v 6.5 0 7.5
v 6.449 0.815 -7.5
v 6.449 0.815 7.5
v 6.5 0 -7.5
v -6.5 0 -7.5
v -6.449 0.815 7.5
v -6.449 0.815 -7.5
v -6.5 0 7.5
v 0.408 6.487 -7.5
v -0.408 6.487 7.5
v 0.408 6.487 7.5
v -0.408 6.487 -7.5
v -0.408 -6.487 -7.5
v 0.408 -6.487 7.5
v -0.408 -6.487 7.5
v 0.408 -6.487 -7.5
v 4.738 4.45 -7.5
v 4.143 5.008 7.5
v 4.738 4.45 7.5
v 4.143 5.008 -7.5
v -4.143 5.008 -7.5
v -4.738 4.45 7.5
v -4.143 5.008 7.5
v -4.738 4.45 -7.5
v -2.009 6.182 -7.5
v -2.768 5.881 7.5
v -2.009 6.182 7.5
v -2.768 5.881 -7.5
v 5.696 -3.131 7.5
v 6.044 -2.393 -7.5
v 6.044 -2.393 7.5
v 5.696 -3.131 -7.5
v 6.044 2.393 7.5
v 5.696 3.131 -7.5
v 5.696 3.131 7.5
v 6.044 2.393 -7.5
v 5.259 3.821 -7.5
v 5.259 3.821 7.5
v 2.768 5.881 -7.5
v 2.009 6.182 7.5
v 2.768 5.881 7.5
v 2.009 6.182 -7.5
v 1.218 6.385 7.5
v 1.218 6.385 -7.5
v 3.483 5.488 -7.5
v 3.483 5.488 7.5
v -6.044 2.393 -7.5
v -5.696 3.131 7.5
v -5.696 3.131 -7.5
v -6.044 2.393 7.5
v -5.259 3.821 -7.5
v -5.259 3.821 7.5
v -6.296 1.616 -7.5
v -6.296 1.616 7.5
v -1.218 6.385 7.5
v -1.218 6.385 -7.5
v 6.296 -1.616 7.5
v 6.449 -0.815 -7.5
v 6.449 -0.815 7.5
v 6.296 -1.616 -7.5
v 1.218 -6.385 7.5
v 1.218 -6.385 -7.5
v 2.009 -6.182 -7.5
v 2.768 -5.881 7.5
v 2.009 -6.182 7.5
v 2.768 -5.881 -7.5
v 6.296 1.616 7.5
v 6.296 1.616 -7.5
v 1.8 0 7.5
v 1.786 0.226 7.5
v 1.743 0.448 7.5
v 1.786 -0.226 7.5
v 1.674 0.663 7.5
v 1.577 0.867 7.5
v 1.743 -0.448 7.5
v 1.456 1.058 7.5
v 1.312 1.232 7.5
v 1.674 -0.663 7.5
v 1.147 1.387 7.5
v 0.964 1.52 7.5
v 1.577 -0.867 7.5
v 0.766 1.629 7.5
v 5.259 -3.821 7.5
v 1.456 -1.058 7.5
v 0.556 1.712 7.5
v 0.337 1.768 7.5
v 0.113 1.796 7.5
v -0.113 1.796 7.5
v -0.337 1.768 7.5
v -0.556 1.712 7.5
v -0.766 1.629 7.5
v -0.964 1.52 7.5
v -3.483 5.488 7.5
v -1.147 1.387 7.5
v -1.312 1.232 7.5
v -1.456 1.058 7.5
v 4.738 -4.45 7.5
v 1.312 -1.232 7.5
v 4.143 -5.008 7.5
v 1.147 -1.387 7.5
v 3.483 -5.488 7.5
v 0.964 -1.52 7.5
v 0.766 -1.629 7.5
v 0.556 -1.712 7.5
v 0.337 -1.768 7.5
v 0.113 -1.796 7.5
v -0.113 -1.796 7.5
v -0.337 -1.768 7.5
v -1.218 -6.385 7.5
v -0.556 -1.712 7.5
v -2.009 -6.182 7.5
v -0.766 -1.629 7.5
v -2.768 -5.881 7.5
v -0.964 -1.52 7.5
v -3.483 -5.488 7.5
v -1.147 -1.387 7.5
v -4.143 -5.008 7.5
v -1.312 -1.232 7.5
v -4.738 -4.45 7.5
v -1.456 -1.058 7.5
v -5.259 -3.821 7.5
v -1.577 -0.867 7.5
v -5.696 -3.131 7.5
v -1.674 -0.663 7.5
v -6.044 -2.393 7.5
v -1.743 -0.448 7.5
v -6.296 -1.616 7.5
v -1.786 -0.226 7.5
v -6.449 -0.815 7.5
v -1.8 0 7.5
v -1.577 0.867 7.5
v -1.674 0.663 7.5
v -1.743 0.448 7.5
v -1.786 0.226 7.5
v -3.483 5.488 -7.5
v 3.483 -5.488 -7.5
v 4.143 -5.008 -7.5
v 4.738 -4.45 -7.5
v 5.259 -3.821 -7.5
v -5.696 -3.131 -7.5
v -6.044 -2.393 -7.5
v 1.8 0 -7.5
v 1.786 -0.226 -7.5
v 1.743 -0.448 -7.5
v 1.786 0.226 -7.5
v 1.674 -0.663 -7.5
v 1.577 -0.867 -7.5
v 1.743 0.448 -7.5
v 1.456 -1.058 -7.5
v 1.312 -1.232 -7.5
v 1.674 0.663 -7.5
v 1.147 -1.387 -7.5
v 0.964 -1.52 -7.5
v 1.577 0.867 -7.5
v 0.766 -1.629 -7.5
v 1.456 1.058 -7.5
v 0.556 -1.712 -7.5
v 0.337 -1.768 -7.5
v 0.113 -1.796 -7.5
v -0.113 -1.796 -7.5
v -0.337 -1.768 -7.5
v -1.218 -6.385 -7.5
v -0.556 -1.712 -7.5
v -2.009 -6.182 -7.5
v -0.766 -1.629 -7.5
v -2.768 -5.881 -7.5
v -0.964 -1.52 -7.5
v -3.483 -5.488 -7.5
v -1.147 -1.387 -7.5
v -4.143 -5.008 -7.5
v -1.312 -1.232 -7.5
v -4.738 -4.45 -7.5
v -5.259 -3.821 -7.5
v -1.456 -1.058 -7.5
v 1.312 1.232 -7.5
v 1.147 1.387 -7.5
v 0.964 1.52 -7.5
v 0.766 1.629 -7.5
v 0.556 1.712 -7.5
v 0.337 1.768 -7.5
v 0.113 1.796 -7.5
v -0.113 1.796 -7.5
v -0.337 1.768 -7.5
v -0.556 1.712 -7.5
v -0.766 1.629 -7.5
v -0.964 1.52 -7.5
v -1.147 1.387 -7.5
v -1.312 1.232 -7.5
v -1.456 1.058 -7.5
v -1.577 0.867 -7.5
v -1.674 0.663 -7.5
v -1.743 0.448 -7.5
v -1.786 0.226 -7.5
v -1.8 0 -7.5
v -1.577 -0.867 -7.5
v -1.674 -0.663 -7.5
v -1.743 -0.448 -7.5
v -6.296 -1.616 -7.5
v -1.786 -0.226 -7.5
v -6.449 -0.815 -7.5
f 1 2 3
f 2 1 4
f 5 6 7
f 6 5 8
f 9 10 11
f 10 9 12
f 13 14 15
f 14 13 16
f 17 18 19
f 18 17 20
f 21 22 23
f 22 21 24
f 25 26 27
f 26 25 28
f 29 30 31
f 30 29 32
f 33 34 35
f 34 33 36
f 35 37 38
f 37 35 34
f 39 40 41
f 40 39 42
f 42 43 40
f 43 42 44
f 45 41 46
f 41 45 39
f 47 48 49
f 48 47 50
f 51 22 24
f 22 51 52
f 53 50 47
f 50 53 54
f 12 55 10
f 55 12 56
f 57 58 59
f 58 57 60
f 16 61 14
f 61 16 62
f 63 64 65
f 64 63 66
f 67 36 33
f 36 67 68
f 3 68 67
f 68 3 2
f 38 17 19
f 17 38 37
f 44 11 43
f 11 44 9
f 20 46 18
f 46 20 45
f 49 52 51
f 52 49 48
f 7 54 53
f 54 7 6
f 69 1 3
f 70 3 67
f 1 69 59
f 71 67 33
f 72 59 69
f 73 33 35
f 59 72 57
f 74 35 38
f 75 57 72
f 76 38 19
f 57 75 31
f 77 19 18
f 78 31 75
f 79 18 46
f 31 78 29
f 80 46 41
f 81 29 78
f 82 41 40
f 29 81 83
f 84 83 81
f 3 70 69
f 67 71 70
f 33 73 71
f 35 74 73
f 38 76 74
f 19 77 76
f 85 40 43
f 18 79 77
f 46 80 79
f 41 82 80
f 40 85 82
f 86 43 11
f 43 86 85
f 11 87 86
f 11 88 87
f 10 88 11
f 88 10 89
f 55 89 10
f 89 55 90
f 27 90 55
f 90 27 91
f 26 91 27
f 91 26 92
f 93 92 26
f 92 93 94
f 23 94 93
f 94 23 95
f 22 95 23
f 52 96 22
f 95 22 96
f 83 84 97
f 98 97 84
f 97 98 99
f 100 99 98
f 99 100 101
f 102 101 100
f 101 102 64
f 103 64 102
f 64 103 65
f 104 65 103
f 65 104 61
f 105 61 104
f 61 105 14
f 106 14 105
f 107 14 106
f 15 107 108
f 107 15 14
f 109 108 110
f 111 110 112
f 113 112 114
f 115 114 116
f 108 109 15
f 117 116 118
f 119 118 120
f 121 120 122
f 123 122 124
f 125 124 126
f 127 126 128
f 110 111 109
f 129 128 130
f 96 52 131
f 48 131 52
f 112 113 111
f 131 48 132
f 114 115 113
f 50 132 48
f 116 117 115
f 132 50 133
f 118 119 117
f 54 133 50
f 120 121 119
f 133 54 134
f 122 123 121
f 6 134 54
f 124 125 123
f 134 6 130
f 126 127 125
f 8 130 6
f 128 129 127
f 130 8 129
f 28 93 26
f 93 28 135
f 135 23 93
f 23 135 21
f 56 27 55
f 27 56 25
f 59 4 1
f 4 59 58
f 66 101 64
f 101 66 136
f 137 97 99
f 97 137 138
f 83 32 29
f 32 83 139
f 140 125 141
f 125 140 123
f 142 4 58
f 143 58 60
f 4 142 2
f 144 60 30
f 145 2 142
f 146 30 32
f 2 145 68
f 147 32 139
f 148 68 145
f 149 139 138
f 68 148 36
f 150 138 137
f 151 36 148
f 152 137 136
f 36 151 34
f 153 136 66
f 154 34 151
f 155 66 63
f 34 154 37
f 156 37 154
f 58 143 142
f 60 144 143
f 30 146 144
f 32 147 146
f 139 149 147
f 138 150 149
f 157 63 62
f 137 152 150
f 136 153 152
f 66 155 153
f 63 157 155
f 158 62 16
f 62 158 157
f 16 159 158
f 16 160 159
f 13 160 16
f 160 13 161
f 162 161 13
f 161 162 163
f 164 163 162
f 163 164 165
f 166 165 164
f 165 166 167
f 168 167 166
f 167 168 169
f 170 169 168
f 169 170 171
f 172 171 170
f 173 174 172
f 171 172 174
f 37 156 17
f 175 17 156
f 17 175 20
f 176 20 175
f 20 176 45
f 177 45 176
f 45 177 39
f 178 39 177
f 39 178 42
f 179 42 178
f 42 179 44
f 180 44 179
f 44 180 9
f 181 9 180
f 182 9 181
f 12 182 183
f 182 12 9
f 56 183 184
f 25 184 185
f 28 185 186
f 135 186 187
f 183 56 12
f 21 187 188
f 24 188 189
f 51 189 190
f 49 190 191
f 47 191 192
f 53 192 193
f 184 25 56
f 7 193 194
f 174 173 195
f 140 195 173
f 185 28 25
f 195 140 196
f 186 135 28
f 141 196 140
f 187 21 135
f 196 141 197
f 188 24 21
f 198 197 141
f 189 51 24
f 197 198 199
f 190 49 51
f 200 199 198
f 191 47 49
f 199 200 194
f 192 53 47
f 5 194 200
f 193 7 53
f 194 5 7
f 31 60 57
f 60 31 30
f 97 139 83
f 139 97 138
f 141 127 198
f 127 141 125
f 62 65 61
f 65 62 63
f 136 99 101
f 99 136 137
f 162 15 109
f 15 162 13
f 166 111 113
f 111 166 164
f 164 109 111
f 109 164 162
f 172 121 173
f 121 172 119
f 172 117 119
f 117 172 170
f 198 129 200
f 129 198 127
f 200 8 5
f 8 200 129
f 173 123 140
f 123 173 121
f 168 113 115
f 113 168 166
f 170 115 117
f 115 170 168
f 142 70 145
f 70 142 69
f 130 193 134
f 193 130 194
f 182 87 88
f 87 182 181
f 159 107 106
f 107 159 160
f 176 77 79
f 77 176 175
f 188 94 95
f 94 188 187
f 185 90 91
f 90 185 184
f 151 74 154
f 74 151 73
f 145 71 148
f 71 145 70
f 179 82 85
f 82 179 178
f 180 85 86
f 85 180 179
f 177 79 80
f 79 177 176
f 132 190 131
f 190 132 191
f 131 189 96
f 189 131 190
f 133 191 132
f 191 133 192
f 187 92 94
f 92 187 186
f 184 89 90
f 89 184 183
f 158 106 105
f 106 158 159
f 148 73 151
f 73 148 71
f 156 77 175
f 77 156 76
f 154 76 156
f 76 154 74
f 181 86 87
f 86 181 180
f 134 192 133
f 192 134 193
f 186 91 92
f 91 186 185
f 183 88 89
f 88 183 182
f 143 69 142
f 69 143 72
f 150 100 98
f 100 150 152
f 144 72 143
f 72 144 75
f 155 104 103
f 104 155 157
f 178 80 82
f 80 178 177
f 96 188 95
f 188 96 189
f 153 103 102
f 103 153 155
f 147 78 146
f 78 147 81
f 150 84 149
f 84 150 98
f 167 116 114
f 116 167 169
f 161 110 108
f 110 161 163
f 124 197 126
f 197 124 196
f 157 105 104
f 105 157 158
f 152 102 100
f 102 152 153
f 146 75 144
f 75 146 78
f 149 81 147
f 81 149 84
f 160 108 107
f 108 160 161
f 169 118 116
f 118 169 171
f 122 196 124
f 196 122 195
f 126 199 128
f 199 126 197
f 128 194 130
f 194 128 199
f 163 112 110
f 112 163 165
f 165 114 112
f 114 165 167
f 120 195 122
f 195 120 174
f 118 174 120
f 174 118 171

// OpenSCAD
$fn = 50;


difference() {
	union() {
		translate(v = [0, 0, -7.5000000000]) {
			cylinder(h = 15, r = 6.5000000000);
		}
	}
	union() {
		translate(v = [0, 0, -100.0000000000]) {
			cylinder(h = 200, r = 1.8000000000);
		}
	}
}
